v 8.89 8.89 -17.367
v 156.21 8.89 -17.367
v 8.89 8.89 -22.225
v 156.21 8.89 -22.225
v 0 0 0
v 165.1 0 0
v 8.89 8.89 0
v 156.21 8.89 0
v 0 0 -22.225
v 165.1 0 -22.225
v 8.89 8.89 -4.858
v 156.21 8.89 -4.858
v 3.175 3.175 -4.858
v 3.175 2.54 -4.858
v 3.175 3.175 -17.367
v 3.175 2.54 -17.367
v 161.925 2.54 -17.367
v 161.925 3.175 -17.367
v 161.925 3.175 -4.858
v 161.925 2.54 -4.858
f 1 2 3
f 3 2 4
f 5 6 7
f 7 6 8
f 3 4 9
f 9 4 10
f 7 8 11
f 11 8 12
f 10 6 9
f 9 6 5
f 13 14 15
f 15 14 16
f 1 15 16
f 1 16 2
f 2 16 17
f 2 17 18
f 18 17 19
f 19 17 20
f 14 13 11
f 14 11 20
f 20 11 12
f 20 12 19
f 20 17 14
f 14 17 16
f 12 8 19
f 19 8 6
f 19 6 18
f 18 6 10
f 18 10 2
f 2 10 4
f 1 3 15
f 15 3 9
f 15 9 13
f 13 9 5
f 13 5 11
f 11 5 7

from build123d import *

# Parameters (mm, degrees)
SKETCH1_W          = 165.1
SKETCH1_H          = 22.225
BASE_EXTRUDE_DEPTH = 8.89
SKETCH3_W          = 158.75
SKETCH3_H          = 12.5095
PIECE_CUT_DEPTH    = 6.35
CORNER_CUT_DEPTH   = 167.826235122


with BuildPart() as part:
    # Sketch1 → Base Extrude (new body)
    with BuildSketch(Plane(origin=(0, 0, 0), x_dir=(1, 0, 0), z_dir=(0, 1, 0))):
        with Locations((82.55, 11.1125)):
            Rectangle(SKETCH1_W, SKETCH1_H)
    extrude(amount=BASE_EXTRUDE_DEPTH)

    # Sketch3 → Piece Cut (cut)
    with BuildSketch(Plane(origin=(0, 8.89, 0), x_dir=(1, 0, 0), z_dir=(0, 1, 0))):
        with Locations((82.55, 11.1125)):
            Rectangle(SKETCH3_W, SKETCH3_H)
    extrude(amount=-PIECE_CUT_DEPTH, mode=Mode.SUBTRACT)

    # Sketch4 → Corner Cut (cut, through all)
    with BuildSketch(Plane(origin=(0, 0, -22.225), x_dir=(-1, 0, 0), z_dir=(0, 0, -1))):
        Polygon((0, 0), (-8.89, 8.89), (0, 8.89), align=None)
        Polygon((-165.1, 8.89), (-156.21, 8.89), (-165.1, 0), align=None)
    extrude(amount=-CORNER_CUT_DEPTH, mode=Mode.SUBTRACT)


solid = part.part
